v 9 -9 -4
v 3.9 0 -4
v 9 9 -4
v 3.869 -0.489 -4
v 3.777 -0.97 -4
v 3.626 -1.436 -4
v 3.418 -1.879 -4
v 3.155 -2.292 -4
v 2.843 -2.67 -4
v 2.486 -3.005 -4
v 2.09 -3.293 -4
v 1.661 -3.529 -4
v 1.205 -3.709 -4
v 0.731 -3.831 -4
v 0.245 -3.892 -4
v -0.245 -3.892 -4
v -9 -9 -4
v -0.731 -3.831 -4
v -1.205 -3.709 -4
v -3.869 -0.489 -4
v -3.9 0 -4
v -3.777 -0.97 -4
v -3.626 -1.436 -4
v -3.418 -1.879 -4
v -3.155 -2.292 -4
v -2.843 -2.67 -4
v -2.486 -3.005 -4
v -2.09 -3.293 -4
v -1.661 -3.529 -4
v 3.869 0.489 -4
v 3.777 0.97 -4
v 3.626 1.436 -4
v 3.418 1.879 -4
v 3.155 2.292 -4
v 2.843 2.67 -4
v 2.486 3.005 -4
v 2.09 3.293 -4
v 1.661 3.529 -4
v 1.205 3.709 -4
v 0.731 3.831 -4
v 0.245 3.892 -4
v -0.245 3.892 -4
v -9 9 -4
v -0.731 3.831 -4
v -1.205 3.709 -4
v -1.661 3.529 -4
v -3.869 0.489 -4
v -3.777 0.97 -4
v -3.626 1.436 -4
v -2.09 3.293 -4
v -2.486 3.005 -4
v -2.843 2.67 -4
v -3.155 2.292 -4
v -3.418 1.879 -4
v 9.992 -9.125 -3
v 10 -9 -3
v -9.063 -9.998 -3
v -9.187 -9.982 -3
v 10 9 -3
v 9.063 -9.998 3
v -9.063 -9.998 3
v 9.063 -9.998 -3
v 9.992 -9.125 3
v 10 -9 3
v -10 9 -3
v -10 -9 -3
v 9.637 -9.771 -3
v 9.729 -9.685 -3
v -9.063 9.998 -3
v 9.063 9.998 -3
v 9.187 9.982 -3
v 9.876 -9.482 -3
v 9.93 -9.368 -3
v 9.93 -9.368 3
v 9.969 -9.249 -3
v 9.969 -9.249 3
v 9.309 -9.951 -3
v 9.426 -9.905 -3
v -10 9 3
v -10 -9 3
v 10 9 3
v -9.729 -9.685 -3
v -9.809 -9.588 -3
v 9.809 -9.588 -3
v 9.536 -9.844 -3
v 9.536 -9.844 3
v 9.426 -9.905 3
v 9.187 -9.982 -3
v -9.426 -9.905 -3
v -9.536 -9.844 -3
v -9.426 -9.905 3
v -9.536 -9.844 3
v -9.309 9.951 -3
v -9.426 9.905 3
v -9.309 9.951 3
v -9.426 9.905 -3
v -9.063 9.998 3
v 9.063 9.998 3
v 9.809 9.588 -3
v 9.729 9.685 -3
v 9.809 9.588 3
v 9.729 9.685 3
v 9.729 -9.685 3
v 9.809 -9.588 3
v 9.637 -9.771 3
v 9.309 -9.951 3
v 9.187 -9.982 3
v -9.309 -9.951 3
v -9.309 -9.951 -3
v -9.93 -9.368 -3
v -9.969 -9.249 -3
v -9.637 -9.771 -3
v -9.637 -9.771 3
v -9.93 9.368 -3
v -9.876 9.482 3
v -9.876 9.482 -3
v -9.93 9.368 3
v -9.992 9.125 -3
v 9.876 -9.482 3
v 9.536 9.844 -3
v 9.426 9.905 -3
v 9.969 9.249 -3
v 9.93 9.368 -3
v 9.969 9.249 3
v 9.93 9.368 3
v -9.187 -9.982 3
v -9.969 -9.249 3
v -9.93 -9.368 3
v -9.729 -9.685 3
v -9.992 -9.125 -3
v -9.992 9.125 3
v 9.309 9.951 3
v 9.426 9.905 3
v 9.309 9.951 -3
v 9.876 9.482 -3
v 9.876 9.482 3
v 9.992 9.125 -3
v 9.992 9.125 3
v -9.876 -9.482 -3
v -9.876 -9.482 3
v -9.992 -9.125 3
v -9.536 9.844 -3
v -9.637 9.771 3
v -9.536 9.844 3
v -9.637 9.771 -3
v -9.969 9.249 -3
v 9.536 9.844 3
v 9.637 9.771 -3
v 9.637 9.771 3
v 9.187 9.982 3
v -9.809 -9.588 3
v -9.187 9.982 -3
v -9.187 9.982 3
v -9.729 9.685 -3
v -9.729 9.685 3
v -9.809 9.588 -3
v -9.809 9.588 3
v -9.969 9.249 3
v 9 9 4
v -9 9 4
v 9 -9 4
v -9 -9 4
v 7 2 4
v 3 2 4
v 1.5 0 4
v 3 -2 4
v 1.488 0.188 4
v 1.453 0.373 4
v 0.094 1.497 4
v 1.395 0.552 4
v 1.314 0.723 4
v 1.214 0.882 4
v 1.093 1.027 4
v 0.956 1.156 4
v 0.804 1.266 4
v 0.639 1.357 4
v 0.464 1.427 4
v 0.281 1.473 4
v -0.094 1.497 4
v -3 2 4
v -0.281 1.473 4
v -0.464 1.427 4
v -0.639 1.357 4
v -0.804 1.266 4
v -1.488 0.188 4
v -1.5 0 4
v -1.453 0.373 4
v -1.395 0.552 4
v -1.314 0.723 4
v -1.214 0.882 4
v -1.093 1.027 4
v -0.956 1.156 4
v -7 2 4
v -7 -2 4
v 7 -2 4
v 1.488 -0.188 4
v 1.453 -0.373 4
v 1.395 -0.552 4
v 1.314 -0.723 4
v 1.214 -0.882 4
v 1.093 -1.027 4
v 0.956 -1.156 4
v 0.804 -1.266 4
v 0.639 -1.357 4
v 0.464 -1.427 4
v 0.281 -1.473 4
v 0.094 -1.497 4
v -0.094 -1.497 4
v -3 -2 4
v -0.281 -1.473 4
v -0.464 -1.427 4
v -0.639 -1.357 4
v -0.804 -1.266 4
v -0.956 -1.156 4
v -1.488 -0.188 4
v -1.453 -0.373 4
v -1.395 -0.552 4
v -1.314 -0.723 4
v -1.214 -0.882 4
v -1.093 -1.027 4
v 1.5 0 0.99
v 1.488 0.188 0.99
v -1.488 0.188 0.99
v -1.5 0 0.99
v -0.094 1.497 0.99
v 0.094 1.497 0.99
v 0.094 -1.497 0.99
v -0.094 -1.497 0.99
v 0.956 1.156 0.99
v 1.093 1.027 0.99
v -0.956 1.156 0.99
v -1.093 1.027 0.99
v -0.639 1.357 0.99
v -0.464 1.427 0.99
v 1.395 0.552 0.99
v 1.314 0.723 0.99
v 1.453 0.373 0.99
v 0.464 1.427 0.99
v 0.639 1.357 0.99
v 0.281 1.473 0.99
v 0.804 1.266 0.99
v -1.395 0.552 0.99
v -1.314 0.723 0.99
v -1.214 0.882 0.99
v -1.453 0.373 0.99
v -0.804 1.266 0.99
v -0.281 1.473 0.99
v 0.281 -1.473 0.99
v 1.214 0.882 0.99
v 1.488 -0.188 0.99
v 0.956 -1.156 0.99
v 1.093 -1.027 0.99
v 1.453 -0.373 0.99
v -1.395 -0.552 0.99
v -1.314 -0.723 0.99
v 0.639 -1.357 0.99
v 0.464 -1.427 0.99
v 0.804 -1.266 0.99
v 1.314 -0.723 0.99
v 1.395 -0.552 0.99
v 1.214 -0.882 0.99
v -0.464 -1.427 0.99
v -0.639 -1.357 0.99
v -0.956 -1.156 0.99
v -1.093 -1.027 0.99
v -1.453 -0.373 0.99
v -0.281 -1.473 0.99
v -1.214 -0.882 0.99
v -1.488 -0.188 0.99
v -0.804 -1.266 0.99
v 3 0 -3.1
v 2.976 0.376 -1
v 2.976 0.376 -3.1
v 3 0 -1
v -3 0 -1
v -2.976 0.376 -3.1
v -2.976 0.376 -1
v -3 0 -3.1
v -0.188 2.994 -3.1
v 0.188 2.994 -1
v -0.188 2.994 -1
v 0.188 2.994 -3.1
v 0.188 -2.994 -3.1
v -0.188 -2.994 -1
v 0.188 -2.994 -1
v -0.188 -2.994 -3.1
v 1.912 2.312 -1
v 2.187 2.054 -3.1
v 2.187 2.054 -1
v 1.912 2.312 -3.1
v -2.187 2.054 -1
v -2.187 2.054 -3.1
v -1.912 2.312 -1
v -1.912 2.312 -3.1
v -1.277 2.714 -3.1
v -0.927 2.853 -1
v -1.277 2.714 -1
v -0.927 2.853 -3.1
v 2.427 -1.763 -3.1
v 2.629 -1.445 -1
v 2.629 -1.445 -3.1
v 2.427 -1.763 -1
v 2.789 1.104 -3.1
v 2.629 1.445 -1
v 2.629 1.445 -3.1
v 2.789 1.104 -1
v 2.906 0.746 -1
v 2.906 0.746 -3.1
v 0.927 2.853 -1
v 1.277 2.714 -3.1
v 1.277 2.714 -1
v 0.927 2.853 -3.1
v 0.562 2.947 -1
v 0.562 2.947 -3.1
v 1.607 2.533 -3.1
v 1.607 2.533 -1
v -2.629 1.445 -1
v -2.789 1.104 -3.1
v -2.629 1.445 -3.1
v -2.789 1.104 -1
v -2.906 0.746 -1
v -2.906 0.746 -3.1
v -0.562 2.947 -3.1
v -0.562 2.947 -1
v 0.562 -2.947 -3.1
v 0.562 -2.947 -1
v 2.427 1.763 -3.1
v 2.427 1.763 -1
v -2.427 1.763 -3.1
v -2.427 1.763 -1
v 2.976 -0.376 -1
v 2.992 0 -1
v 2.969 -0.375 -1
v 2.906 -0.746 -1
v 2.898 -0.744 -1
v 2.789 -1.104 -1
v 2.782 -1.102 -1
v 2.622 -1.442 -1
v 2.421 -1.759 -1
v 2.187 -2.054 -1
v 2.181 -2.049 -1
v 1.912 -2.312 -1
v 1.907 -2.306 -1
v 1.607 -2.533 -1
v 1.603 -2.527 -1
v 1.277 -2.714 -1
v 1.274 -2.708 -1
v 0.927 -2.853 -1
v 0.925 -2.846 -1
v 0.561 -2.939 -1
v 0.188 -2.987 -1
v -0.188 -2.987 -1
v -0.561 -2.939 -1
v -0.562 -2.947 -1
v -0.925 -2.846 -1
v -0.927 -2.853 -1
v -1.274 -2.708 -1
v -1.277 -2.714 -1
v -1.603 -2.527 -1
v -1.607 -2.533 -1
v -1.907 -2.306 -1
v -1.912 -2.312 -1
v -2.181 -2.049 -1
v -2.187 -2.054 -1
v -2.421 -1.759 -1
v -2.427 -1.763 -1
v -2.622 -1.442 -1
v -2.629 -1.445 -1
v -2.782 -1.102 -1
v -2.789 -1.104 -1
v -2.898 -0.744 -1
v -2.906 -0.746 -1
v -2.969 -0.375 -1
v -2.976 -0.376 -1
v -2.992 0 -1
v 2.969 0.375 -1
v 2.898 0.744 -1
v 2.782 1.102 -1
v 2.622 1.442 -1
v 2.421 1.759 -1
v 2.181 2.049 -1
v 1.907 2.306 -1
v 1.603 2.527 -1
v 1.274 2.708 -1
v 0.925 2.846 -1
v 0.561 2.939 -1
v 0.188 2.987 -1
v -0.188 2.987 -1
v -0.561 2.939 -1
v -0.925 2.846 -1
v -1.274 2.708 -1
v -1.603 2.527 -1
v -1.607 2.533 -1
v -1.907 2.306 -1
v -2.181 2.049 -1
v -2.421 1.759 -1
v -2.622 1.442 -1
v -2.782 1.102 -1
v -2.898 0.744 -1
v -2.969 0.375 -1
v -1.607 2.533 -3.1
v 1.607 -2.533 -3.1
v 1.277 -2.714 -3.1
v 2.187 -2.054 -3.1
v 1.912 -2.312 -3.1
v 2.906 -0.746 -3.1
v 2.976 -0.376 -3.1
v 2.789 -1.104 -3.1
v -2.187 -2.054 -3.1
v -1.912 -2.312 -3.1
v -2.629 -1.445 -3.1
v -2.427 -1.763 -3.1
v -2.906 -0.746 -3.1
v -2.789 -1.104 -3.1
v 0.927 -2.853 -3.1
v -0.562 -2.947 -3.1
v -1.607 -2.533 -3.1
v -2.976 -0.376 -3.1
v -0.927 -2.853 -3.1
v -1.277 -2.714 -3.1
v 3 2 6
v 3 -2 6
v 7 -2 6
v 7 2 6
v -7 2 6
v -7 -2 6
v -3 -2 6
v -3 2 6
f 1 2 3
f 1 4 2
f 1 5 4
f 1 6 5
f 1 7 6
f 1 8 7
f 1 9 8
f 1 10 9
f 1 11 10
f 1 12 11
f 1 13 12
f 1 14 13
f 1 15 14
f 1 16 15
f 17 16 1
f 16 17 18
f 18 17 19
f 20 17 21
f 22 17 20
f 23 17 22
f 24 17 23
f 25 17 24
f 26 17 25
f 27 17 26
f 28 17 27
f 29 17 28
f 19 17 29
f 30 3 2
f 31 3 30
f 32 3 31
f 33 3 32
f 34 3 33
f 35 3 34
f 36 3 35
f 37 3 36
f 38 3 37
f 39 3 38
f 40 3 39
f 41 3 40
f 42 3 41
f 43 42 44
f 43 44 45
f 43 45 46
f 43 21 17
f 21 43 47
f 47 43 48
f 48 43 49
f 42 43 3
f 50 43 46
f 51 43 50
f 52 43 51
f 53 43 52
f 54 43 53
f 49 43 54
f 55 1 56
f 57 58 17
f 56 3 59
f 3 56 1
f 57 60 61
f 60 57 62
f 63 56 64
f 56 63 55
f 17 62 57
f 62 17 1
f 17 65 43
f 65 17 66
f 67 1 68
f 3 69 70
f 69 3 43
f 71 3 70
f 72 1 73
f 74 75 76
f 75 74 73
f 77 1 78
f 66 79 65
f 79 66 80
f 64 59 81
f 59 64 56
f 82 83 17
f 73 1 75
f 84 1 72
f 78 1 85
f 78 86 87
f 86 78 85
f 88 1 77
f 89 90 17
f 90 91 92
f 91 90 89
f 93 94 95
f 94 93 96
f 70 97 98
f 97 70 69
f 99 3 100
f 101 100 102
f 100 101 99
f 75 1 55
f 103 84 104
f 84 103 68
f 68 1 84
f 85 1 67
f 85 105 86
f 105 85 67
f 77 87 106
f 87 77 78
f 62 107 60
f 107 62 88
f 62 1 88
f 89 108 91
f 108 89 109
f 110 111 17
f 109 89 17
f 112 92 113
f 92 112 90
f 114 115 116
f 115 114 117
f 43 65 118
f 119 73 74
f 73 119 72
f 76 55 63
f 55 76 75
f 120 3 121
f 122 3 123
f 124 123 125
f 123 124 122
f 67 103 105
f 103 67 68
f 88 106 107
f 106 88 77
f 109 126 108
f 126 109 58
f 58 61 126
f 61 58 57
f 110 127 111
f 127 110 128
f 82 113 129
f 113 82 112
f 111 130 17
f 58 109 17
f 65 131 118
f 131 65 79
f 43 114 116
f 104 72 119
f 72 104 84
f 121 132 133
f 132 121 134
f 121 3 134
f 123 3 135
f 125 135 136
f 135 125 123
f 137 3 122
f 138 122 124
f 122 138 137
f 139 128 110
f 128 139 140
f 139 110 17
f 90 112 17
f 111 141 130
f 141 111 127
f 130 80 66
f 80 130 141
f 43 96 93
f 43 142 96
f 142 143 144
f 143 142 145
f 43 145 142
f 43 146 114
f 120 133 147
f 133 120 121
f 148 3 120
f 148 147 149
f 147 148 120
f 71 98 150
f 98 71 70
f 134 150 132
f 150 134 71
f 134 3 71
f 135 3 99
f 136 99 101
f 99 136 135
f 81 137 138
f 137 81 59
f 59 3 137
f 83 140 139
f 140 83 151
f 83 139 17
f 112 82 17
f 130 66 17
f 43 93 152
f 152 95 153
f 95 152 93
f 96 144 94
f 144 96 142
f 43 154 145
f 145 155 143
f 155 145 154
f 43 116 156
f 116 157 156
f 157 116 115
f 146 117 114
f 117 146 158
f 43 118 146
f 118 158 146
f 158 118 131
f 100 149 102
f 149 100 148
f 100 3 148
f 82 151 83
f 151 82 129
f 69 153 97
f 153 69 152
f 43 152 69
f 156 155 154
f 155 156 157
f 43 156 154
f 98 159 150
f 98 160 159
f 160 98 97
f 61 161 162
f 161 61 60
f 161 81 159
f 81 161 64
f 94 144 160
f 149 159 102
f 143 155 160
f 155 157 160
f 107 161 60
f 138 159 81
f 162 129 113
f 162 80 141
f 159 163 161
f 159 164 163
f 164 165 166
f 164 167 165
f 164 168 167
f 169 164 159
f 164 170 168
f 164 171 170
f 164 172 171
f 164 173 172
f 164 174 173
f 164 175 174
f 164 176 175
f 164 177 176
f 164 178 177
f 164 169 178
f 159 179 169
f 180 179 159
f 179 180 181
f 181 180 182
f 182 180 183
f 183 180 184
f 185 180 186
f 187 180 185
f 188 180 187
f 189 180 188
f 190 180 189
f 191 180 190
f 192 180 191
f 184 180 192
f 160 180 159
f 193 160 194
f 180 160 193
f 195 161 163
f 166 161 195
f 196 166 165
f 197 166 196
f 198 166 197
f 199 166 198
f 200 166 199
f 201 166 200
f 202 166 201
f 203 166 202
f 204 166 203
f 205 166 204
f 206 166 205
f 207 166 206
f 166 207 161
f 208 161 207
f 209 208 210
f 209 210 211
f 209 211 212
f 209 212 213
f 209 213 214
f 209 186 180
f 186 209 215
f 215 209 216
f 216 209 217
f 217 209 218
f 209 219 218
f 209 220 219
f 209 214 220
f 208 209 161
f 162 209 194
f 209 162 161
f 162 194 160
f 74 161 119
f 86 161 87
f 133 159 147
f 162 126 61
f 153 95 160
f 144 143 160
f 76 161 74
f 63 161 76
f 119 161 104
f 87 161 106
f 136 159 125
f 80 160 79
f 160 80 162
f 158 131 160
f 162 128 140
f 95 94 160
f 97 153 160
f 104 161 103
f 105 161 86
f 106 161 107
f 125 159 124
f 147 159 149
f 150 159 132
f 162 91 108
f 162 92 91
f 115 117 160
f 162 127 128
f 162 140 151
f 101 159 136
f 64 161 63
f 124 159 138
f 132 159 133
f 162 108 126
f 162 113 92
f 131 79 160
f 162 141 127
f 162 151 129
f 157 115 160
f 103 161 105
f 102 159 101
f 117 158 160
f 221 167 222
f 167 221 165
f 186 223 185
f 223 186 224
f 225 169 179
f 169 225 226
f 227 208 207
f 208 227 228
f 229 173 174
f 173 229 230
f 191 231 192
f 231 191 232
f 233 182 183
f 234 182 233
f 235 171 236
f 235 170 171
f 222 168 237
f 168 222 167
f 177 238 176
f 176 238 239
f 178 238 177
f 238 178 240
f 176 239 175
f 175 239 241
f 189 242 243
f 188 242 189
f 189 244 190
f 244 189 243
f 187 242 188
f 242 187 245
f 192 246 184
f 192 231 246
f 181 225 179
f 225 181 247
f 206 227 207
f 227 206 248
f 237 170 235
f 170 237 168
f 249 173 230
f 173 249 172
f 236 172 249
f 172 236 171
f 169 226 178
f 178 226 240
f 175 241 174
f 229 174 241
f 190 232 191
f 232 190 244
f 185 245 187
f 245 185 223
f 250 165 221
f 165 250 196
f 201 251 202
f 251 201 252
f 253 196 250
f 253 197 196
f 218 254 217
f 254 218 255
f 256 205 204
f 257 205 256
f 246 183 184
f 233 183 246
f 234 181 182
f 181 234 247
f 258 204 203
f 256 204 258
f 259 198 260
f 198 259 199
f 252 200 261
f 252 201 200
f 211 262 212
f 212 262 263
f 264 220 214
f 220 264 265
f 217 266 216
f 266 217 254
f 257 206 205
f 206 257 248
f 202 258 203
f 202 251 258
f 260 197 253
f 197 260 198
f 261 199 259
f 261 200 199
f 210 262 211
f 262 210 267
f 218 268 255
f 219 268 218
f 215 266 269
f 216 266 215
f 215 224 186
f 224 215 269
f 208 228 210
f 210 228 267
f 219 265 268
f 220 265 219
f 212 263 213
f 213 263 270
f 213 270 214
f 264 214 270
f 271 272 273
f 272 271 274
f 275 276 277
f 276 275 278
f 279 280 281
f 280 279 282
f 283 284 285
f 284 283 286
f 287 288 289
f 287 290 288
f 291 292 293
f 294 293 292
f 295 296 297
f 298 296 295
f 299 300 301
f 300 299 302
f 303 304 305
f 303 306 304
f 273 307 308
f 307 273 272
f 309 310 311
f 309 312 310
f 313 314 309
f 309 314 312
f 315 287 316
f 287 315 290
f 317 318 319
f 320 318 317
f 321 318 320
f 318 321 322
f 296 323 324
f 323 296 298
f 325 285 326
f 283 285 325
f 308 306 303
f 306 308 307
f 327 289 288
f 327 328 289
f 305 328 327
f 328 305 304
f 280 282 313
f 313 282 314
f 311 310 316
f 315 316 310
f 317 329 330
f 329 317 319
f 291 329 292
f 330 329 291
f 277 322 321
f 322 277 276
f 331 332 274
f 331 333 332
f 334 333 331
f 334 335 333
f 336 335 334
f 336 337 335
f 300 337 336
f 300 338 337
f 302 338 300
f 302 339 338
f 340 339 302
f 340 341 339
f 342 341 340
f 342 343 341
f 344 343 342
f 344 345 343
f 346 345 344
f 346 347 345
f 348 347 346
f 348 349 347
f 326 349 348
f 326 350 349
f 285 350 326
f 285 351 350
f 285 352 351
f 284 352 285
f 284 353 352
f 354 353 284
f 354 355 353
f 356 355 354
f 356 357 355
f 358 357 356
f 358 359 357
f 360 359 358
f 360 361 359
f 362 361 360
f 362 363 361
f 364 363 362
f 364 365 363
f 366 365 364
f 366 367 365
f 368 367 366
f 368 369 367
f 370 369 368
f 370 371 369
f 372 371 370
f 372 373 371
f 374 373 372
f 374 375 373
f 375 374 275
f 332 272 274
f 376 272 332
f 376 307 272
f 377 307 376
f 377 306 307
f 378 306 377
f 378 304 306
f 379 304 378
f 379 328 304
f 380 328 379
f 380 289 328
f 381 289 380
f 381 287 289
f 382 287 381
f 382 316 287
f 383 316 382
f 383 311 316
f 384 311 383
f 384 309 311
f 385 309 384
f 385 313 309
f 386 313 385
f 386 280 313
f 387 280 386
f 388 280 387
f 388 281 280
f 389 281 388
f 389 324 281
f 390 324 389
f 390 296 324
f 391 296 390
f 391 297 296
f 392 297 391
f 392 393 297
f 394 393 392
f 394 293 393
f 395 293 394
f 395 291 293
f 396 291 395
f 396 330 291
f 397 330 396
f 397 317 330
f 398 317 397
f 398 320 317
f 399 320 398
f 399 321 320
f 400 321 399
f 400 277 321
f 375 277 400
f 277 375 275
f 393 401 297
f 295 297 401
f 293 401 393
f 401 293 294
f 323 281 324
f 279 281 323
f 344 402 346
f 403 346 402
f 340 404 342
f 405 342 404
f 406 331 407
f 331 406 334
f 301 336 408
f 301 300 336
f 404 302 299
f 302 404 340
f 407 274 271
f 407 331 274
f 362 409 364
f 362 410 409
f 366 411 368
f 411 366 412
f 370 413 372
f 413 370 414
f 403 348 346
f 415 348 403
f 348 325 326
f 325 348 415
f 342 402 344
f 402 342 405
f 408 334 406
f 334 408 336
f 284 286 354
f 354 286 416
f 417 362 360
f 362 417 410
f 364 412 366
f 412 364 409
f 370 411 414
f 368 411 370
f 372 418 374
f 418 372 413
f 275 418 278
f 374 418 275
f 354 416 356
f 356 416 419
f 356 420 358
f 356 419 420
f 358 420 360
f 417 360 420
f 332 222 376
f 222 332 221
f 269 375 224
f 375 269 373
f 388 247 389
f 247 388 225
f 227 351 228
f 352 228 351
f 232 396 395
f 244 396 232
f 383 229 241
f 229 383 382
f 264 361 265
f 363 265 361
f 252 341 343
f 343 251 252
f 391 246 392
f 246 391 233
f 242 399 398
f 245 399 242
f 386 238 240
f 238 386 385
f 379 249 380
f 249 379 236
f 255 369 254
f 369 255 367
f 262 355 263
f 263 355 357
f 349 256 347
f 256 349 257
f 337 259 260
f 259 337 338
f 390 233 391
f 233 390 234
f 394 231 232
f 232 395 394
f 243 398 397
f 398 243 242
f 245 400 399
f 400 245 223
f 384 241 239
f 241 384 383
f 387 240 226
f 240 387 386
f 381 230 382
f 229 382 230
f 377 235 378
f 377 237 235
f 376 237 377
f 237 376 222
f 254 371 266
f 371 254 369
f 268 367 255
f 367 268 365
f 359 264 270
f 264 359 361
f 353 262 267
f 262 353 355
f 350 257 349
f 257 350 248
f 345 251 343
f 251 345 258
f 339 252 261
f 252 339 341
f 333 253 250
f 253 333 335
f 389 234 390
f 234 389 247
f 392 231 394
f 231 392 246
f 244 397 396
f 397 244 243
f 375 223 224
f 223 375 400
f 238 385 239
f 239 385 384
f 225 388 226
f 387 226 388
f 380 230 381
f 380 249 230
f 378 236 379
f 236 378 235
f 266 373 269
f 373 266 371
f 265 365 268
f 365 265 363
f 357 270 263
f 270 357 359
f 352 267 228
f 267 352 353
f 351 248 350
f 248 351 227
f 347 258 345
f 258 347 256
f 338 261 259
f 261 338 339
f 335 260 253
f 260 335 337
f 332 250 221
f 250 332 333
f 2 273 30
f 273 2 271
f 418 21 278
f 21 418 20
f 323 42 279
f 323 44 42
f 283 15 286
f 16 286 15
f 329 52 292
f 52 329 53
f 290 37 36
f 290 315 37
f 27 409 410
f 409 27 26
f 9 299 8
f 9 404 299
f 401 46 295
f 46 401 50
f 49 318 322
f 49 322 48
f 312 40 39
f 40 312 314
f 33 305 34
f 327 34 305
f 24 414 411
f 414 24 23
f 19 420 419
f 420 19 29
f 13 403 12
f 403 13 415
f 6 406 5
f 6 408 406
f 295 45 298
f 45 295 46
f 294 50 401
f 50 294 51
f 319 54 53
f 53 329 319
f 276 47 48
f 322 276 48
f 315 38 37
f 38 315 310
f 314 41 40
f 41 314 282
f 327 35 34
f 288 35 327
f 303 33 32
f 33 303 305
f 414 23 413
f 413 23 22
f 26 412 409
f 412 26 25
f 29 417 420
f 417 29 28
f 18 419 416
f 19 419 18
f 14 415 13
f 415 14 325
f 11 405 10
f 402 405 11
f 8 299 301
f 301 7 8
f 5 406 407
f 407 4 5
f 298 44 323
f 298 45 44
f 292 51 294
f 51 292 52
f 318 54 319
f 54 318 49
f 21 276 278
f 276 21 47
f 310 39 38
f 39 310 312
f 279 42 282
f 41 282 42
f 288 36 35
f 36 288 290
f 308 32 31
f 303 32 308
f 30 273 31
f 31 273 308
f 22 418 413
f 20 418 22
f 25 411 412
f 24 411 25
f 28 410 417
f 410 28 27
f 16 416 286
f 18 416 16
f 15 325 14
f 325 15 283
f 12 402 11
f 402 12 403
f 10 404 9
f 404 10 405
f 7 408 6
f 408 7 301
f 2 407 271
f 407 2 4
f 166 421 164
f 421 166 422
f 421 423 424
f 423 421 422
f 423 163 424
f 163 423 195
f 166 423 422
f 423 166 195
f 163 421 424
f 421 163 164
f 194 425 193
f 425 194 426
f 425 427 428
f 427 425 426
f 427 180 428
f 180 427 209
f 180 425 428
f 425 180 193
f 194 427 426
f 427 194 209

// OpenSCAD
// designed (but not tested?) to work with 20x20 extrusion.

$fn = 50;
union() {
    difference() {
        minkowski() {
            union() {
                translate([0, 0, 1]) cylinder(1, 1, 0, center=true);
                scale(-1) translate([0, 0, 1]) cylinder(1, 1, 0, center=true);
            }
            cube([18, 18, 5], center=true);
        }
        cylinder(10, 1.5, 1.5, center=true);
        translate([0, 0, -6]) cylinder(10, 3, 3, center=true);
        translate([0, 0, .99]) cylinder(4, 3, 0, center=true);
        translate([0, 0, -2.1]) cylinder(4, 4, 0, center=true); // bottom fchamfer
    }
    translate([5, 0, 4]) cube([4, 4, 4], center=true);
    translate([-5, 0, 4]) cube([4, 4, 4], center=true);
}
